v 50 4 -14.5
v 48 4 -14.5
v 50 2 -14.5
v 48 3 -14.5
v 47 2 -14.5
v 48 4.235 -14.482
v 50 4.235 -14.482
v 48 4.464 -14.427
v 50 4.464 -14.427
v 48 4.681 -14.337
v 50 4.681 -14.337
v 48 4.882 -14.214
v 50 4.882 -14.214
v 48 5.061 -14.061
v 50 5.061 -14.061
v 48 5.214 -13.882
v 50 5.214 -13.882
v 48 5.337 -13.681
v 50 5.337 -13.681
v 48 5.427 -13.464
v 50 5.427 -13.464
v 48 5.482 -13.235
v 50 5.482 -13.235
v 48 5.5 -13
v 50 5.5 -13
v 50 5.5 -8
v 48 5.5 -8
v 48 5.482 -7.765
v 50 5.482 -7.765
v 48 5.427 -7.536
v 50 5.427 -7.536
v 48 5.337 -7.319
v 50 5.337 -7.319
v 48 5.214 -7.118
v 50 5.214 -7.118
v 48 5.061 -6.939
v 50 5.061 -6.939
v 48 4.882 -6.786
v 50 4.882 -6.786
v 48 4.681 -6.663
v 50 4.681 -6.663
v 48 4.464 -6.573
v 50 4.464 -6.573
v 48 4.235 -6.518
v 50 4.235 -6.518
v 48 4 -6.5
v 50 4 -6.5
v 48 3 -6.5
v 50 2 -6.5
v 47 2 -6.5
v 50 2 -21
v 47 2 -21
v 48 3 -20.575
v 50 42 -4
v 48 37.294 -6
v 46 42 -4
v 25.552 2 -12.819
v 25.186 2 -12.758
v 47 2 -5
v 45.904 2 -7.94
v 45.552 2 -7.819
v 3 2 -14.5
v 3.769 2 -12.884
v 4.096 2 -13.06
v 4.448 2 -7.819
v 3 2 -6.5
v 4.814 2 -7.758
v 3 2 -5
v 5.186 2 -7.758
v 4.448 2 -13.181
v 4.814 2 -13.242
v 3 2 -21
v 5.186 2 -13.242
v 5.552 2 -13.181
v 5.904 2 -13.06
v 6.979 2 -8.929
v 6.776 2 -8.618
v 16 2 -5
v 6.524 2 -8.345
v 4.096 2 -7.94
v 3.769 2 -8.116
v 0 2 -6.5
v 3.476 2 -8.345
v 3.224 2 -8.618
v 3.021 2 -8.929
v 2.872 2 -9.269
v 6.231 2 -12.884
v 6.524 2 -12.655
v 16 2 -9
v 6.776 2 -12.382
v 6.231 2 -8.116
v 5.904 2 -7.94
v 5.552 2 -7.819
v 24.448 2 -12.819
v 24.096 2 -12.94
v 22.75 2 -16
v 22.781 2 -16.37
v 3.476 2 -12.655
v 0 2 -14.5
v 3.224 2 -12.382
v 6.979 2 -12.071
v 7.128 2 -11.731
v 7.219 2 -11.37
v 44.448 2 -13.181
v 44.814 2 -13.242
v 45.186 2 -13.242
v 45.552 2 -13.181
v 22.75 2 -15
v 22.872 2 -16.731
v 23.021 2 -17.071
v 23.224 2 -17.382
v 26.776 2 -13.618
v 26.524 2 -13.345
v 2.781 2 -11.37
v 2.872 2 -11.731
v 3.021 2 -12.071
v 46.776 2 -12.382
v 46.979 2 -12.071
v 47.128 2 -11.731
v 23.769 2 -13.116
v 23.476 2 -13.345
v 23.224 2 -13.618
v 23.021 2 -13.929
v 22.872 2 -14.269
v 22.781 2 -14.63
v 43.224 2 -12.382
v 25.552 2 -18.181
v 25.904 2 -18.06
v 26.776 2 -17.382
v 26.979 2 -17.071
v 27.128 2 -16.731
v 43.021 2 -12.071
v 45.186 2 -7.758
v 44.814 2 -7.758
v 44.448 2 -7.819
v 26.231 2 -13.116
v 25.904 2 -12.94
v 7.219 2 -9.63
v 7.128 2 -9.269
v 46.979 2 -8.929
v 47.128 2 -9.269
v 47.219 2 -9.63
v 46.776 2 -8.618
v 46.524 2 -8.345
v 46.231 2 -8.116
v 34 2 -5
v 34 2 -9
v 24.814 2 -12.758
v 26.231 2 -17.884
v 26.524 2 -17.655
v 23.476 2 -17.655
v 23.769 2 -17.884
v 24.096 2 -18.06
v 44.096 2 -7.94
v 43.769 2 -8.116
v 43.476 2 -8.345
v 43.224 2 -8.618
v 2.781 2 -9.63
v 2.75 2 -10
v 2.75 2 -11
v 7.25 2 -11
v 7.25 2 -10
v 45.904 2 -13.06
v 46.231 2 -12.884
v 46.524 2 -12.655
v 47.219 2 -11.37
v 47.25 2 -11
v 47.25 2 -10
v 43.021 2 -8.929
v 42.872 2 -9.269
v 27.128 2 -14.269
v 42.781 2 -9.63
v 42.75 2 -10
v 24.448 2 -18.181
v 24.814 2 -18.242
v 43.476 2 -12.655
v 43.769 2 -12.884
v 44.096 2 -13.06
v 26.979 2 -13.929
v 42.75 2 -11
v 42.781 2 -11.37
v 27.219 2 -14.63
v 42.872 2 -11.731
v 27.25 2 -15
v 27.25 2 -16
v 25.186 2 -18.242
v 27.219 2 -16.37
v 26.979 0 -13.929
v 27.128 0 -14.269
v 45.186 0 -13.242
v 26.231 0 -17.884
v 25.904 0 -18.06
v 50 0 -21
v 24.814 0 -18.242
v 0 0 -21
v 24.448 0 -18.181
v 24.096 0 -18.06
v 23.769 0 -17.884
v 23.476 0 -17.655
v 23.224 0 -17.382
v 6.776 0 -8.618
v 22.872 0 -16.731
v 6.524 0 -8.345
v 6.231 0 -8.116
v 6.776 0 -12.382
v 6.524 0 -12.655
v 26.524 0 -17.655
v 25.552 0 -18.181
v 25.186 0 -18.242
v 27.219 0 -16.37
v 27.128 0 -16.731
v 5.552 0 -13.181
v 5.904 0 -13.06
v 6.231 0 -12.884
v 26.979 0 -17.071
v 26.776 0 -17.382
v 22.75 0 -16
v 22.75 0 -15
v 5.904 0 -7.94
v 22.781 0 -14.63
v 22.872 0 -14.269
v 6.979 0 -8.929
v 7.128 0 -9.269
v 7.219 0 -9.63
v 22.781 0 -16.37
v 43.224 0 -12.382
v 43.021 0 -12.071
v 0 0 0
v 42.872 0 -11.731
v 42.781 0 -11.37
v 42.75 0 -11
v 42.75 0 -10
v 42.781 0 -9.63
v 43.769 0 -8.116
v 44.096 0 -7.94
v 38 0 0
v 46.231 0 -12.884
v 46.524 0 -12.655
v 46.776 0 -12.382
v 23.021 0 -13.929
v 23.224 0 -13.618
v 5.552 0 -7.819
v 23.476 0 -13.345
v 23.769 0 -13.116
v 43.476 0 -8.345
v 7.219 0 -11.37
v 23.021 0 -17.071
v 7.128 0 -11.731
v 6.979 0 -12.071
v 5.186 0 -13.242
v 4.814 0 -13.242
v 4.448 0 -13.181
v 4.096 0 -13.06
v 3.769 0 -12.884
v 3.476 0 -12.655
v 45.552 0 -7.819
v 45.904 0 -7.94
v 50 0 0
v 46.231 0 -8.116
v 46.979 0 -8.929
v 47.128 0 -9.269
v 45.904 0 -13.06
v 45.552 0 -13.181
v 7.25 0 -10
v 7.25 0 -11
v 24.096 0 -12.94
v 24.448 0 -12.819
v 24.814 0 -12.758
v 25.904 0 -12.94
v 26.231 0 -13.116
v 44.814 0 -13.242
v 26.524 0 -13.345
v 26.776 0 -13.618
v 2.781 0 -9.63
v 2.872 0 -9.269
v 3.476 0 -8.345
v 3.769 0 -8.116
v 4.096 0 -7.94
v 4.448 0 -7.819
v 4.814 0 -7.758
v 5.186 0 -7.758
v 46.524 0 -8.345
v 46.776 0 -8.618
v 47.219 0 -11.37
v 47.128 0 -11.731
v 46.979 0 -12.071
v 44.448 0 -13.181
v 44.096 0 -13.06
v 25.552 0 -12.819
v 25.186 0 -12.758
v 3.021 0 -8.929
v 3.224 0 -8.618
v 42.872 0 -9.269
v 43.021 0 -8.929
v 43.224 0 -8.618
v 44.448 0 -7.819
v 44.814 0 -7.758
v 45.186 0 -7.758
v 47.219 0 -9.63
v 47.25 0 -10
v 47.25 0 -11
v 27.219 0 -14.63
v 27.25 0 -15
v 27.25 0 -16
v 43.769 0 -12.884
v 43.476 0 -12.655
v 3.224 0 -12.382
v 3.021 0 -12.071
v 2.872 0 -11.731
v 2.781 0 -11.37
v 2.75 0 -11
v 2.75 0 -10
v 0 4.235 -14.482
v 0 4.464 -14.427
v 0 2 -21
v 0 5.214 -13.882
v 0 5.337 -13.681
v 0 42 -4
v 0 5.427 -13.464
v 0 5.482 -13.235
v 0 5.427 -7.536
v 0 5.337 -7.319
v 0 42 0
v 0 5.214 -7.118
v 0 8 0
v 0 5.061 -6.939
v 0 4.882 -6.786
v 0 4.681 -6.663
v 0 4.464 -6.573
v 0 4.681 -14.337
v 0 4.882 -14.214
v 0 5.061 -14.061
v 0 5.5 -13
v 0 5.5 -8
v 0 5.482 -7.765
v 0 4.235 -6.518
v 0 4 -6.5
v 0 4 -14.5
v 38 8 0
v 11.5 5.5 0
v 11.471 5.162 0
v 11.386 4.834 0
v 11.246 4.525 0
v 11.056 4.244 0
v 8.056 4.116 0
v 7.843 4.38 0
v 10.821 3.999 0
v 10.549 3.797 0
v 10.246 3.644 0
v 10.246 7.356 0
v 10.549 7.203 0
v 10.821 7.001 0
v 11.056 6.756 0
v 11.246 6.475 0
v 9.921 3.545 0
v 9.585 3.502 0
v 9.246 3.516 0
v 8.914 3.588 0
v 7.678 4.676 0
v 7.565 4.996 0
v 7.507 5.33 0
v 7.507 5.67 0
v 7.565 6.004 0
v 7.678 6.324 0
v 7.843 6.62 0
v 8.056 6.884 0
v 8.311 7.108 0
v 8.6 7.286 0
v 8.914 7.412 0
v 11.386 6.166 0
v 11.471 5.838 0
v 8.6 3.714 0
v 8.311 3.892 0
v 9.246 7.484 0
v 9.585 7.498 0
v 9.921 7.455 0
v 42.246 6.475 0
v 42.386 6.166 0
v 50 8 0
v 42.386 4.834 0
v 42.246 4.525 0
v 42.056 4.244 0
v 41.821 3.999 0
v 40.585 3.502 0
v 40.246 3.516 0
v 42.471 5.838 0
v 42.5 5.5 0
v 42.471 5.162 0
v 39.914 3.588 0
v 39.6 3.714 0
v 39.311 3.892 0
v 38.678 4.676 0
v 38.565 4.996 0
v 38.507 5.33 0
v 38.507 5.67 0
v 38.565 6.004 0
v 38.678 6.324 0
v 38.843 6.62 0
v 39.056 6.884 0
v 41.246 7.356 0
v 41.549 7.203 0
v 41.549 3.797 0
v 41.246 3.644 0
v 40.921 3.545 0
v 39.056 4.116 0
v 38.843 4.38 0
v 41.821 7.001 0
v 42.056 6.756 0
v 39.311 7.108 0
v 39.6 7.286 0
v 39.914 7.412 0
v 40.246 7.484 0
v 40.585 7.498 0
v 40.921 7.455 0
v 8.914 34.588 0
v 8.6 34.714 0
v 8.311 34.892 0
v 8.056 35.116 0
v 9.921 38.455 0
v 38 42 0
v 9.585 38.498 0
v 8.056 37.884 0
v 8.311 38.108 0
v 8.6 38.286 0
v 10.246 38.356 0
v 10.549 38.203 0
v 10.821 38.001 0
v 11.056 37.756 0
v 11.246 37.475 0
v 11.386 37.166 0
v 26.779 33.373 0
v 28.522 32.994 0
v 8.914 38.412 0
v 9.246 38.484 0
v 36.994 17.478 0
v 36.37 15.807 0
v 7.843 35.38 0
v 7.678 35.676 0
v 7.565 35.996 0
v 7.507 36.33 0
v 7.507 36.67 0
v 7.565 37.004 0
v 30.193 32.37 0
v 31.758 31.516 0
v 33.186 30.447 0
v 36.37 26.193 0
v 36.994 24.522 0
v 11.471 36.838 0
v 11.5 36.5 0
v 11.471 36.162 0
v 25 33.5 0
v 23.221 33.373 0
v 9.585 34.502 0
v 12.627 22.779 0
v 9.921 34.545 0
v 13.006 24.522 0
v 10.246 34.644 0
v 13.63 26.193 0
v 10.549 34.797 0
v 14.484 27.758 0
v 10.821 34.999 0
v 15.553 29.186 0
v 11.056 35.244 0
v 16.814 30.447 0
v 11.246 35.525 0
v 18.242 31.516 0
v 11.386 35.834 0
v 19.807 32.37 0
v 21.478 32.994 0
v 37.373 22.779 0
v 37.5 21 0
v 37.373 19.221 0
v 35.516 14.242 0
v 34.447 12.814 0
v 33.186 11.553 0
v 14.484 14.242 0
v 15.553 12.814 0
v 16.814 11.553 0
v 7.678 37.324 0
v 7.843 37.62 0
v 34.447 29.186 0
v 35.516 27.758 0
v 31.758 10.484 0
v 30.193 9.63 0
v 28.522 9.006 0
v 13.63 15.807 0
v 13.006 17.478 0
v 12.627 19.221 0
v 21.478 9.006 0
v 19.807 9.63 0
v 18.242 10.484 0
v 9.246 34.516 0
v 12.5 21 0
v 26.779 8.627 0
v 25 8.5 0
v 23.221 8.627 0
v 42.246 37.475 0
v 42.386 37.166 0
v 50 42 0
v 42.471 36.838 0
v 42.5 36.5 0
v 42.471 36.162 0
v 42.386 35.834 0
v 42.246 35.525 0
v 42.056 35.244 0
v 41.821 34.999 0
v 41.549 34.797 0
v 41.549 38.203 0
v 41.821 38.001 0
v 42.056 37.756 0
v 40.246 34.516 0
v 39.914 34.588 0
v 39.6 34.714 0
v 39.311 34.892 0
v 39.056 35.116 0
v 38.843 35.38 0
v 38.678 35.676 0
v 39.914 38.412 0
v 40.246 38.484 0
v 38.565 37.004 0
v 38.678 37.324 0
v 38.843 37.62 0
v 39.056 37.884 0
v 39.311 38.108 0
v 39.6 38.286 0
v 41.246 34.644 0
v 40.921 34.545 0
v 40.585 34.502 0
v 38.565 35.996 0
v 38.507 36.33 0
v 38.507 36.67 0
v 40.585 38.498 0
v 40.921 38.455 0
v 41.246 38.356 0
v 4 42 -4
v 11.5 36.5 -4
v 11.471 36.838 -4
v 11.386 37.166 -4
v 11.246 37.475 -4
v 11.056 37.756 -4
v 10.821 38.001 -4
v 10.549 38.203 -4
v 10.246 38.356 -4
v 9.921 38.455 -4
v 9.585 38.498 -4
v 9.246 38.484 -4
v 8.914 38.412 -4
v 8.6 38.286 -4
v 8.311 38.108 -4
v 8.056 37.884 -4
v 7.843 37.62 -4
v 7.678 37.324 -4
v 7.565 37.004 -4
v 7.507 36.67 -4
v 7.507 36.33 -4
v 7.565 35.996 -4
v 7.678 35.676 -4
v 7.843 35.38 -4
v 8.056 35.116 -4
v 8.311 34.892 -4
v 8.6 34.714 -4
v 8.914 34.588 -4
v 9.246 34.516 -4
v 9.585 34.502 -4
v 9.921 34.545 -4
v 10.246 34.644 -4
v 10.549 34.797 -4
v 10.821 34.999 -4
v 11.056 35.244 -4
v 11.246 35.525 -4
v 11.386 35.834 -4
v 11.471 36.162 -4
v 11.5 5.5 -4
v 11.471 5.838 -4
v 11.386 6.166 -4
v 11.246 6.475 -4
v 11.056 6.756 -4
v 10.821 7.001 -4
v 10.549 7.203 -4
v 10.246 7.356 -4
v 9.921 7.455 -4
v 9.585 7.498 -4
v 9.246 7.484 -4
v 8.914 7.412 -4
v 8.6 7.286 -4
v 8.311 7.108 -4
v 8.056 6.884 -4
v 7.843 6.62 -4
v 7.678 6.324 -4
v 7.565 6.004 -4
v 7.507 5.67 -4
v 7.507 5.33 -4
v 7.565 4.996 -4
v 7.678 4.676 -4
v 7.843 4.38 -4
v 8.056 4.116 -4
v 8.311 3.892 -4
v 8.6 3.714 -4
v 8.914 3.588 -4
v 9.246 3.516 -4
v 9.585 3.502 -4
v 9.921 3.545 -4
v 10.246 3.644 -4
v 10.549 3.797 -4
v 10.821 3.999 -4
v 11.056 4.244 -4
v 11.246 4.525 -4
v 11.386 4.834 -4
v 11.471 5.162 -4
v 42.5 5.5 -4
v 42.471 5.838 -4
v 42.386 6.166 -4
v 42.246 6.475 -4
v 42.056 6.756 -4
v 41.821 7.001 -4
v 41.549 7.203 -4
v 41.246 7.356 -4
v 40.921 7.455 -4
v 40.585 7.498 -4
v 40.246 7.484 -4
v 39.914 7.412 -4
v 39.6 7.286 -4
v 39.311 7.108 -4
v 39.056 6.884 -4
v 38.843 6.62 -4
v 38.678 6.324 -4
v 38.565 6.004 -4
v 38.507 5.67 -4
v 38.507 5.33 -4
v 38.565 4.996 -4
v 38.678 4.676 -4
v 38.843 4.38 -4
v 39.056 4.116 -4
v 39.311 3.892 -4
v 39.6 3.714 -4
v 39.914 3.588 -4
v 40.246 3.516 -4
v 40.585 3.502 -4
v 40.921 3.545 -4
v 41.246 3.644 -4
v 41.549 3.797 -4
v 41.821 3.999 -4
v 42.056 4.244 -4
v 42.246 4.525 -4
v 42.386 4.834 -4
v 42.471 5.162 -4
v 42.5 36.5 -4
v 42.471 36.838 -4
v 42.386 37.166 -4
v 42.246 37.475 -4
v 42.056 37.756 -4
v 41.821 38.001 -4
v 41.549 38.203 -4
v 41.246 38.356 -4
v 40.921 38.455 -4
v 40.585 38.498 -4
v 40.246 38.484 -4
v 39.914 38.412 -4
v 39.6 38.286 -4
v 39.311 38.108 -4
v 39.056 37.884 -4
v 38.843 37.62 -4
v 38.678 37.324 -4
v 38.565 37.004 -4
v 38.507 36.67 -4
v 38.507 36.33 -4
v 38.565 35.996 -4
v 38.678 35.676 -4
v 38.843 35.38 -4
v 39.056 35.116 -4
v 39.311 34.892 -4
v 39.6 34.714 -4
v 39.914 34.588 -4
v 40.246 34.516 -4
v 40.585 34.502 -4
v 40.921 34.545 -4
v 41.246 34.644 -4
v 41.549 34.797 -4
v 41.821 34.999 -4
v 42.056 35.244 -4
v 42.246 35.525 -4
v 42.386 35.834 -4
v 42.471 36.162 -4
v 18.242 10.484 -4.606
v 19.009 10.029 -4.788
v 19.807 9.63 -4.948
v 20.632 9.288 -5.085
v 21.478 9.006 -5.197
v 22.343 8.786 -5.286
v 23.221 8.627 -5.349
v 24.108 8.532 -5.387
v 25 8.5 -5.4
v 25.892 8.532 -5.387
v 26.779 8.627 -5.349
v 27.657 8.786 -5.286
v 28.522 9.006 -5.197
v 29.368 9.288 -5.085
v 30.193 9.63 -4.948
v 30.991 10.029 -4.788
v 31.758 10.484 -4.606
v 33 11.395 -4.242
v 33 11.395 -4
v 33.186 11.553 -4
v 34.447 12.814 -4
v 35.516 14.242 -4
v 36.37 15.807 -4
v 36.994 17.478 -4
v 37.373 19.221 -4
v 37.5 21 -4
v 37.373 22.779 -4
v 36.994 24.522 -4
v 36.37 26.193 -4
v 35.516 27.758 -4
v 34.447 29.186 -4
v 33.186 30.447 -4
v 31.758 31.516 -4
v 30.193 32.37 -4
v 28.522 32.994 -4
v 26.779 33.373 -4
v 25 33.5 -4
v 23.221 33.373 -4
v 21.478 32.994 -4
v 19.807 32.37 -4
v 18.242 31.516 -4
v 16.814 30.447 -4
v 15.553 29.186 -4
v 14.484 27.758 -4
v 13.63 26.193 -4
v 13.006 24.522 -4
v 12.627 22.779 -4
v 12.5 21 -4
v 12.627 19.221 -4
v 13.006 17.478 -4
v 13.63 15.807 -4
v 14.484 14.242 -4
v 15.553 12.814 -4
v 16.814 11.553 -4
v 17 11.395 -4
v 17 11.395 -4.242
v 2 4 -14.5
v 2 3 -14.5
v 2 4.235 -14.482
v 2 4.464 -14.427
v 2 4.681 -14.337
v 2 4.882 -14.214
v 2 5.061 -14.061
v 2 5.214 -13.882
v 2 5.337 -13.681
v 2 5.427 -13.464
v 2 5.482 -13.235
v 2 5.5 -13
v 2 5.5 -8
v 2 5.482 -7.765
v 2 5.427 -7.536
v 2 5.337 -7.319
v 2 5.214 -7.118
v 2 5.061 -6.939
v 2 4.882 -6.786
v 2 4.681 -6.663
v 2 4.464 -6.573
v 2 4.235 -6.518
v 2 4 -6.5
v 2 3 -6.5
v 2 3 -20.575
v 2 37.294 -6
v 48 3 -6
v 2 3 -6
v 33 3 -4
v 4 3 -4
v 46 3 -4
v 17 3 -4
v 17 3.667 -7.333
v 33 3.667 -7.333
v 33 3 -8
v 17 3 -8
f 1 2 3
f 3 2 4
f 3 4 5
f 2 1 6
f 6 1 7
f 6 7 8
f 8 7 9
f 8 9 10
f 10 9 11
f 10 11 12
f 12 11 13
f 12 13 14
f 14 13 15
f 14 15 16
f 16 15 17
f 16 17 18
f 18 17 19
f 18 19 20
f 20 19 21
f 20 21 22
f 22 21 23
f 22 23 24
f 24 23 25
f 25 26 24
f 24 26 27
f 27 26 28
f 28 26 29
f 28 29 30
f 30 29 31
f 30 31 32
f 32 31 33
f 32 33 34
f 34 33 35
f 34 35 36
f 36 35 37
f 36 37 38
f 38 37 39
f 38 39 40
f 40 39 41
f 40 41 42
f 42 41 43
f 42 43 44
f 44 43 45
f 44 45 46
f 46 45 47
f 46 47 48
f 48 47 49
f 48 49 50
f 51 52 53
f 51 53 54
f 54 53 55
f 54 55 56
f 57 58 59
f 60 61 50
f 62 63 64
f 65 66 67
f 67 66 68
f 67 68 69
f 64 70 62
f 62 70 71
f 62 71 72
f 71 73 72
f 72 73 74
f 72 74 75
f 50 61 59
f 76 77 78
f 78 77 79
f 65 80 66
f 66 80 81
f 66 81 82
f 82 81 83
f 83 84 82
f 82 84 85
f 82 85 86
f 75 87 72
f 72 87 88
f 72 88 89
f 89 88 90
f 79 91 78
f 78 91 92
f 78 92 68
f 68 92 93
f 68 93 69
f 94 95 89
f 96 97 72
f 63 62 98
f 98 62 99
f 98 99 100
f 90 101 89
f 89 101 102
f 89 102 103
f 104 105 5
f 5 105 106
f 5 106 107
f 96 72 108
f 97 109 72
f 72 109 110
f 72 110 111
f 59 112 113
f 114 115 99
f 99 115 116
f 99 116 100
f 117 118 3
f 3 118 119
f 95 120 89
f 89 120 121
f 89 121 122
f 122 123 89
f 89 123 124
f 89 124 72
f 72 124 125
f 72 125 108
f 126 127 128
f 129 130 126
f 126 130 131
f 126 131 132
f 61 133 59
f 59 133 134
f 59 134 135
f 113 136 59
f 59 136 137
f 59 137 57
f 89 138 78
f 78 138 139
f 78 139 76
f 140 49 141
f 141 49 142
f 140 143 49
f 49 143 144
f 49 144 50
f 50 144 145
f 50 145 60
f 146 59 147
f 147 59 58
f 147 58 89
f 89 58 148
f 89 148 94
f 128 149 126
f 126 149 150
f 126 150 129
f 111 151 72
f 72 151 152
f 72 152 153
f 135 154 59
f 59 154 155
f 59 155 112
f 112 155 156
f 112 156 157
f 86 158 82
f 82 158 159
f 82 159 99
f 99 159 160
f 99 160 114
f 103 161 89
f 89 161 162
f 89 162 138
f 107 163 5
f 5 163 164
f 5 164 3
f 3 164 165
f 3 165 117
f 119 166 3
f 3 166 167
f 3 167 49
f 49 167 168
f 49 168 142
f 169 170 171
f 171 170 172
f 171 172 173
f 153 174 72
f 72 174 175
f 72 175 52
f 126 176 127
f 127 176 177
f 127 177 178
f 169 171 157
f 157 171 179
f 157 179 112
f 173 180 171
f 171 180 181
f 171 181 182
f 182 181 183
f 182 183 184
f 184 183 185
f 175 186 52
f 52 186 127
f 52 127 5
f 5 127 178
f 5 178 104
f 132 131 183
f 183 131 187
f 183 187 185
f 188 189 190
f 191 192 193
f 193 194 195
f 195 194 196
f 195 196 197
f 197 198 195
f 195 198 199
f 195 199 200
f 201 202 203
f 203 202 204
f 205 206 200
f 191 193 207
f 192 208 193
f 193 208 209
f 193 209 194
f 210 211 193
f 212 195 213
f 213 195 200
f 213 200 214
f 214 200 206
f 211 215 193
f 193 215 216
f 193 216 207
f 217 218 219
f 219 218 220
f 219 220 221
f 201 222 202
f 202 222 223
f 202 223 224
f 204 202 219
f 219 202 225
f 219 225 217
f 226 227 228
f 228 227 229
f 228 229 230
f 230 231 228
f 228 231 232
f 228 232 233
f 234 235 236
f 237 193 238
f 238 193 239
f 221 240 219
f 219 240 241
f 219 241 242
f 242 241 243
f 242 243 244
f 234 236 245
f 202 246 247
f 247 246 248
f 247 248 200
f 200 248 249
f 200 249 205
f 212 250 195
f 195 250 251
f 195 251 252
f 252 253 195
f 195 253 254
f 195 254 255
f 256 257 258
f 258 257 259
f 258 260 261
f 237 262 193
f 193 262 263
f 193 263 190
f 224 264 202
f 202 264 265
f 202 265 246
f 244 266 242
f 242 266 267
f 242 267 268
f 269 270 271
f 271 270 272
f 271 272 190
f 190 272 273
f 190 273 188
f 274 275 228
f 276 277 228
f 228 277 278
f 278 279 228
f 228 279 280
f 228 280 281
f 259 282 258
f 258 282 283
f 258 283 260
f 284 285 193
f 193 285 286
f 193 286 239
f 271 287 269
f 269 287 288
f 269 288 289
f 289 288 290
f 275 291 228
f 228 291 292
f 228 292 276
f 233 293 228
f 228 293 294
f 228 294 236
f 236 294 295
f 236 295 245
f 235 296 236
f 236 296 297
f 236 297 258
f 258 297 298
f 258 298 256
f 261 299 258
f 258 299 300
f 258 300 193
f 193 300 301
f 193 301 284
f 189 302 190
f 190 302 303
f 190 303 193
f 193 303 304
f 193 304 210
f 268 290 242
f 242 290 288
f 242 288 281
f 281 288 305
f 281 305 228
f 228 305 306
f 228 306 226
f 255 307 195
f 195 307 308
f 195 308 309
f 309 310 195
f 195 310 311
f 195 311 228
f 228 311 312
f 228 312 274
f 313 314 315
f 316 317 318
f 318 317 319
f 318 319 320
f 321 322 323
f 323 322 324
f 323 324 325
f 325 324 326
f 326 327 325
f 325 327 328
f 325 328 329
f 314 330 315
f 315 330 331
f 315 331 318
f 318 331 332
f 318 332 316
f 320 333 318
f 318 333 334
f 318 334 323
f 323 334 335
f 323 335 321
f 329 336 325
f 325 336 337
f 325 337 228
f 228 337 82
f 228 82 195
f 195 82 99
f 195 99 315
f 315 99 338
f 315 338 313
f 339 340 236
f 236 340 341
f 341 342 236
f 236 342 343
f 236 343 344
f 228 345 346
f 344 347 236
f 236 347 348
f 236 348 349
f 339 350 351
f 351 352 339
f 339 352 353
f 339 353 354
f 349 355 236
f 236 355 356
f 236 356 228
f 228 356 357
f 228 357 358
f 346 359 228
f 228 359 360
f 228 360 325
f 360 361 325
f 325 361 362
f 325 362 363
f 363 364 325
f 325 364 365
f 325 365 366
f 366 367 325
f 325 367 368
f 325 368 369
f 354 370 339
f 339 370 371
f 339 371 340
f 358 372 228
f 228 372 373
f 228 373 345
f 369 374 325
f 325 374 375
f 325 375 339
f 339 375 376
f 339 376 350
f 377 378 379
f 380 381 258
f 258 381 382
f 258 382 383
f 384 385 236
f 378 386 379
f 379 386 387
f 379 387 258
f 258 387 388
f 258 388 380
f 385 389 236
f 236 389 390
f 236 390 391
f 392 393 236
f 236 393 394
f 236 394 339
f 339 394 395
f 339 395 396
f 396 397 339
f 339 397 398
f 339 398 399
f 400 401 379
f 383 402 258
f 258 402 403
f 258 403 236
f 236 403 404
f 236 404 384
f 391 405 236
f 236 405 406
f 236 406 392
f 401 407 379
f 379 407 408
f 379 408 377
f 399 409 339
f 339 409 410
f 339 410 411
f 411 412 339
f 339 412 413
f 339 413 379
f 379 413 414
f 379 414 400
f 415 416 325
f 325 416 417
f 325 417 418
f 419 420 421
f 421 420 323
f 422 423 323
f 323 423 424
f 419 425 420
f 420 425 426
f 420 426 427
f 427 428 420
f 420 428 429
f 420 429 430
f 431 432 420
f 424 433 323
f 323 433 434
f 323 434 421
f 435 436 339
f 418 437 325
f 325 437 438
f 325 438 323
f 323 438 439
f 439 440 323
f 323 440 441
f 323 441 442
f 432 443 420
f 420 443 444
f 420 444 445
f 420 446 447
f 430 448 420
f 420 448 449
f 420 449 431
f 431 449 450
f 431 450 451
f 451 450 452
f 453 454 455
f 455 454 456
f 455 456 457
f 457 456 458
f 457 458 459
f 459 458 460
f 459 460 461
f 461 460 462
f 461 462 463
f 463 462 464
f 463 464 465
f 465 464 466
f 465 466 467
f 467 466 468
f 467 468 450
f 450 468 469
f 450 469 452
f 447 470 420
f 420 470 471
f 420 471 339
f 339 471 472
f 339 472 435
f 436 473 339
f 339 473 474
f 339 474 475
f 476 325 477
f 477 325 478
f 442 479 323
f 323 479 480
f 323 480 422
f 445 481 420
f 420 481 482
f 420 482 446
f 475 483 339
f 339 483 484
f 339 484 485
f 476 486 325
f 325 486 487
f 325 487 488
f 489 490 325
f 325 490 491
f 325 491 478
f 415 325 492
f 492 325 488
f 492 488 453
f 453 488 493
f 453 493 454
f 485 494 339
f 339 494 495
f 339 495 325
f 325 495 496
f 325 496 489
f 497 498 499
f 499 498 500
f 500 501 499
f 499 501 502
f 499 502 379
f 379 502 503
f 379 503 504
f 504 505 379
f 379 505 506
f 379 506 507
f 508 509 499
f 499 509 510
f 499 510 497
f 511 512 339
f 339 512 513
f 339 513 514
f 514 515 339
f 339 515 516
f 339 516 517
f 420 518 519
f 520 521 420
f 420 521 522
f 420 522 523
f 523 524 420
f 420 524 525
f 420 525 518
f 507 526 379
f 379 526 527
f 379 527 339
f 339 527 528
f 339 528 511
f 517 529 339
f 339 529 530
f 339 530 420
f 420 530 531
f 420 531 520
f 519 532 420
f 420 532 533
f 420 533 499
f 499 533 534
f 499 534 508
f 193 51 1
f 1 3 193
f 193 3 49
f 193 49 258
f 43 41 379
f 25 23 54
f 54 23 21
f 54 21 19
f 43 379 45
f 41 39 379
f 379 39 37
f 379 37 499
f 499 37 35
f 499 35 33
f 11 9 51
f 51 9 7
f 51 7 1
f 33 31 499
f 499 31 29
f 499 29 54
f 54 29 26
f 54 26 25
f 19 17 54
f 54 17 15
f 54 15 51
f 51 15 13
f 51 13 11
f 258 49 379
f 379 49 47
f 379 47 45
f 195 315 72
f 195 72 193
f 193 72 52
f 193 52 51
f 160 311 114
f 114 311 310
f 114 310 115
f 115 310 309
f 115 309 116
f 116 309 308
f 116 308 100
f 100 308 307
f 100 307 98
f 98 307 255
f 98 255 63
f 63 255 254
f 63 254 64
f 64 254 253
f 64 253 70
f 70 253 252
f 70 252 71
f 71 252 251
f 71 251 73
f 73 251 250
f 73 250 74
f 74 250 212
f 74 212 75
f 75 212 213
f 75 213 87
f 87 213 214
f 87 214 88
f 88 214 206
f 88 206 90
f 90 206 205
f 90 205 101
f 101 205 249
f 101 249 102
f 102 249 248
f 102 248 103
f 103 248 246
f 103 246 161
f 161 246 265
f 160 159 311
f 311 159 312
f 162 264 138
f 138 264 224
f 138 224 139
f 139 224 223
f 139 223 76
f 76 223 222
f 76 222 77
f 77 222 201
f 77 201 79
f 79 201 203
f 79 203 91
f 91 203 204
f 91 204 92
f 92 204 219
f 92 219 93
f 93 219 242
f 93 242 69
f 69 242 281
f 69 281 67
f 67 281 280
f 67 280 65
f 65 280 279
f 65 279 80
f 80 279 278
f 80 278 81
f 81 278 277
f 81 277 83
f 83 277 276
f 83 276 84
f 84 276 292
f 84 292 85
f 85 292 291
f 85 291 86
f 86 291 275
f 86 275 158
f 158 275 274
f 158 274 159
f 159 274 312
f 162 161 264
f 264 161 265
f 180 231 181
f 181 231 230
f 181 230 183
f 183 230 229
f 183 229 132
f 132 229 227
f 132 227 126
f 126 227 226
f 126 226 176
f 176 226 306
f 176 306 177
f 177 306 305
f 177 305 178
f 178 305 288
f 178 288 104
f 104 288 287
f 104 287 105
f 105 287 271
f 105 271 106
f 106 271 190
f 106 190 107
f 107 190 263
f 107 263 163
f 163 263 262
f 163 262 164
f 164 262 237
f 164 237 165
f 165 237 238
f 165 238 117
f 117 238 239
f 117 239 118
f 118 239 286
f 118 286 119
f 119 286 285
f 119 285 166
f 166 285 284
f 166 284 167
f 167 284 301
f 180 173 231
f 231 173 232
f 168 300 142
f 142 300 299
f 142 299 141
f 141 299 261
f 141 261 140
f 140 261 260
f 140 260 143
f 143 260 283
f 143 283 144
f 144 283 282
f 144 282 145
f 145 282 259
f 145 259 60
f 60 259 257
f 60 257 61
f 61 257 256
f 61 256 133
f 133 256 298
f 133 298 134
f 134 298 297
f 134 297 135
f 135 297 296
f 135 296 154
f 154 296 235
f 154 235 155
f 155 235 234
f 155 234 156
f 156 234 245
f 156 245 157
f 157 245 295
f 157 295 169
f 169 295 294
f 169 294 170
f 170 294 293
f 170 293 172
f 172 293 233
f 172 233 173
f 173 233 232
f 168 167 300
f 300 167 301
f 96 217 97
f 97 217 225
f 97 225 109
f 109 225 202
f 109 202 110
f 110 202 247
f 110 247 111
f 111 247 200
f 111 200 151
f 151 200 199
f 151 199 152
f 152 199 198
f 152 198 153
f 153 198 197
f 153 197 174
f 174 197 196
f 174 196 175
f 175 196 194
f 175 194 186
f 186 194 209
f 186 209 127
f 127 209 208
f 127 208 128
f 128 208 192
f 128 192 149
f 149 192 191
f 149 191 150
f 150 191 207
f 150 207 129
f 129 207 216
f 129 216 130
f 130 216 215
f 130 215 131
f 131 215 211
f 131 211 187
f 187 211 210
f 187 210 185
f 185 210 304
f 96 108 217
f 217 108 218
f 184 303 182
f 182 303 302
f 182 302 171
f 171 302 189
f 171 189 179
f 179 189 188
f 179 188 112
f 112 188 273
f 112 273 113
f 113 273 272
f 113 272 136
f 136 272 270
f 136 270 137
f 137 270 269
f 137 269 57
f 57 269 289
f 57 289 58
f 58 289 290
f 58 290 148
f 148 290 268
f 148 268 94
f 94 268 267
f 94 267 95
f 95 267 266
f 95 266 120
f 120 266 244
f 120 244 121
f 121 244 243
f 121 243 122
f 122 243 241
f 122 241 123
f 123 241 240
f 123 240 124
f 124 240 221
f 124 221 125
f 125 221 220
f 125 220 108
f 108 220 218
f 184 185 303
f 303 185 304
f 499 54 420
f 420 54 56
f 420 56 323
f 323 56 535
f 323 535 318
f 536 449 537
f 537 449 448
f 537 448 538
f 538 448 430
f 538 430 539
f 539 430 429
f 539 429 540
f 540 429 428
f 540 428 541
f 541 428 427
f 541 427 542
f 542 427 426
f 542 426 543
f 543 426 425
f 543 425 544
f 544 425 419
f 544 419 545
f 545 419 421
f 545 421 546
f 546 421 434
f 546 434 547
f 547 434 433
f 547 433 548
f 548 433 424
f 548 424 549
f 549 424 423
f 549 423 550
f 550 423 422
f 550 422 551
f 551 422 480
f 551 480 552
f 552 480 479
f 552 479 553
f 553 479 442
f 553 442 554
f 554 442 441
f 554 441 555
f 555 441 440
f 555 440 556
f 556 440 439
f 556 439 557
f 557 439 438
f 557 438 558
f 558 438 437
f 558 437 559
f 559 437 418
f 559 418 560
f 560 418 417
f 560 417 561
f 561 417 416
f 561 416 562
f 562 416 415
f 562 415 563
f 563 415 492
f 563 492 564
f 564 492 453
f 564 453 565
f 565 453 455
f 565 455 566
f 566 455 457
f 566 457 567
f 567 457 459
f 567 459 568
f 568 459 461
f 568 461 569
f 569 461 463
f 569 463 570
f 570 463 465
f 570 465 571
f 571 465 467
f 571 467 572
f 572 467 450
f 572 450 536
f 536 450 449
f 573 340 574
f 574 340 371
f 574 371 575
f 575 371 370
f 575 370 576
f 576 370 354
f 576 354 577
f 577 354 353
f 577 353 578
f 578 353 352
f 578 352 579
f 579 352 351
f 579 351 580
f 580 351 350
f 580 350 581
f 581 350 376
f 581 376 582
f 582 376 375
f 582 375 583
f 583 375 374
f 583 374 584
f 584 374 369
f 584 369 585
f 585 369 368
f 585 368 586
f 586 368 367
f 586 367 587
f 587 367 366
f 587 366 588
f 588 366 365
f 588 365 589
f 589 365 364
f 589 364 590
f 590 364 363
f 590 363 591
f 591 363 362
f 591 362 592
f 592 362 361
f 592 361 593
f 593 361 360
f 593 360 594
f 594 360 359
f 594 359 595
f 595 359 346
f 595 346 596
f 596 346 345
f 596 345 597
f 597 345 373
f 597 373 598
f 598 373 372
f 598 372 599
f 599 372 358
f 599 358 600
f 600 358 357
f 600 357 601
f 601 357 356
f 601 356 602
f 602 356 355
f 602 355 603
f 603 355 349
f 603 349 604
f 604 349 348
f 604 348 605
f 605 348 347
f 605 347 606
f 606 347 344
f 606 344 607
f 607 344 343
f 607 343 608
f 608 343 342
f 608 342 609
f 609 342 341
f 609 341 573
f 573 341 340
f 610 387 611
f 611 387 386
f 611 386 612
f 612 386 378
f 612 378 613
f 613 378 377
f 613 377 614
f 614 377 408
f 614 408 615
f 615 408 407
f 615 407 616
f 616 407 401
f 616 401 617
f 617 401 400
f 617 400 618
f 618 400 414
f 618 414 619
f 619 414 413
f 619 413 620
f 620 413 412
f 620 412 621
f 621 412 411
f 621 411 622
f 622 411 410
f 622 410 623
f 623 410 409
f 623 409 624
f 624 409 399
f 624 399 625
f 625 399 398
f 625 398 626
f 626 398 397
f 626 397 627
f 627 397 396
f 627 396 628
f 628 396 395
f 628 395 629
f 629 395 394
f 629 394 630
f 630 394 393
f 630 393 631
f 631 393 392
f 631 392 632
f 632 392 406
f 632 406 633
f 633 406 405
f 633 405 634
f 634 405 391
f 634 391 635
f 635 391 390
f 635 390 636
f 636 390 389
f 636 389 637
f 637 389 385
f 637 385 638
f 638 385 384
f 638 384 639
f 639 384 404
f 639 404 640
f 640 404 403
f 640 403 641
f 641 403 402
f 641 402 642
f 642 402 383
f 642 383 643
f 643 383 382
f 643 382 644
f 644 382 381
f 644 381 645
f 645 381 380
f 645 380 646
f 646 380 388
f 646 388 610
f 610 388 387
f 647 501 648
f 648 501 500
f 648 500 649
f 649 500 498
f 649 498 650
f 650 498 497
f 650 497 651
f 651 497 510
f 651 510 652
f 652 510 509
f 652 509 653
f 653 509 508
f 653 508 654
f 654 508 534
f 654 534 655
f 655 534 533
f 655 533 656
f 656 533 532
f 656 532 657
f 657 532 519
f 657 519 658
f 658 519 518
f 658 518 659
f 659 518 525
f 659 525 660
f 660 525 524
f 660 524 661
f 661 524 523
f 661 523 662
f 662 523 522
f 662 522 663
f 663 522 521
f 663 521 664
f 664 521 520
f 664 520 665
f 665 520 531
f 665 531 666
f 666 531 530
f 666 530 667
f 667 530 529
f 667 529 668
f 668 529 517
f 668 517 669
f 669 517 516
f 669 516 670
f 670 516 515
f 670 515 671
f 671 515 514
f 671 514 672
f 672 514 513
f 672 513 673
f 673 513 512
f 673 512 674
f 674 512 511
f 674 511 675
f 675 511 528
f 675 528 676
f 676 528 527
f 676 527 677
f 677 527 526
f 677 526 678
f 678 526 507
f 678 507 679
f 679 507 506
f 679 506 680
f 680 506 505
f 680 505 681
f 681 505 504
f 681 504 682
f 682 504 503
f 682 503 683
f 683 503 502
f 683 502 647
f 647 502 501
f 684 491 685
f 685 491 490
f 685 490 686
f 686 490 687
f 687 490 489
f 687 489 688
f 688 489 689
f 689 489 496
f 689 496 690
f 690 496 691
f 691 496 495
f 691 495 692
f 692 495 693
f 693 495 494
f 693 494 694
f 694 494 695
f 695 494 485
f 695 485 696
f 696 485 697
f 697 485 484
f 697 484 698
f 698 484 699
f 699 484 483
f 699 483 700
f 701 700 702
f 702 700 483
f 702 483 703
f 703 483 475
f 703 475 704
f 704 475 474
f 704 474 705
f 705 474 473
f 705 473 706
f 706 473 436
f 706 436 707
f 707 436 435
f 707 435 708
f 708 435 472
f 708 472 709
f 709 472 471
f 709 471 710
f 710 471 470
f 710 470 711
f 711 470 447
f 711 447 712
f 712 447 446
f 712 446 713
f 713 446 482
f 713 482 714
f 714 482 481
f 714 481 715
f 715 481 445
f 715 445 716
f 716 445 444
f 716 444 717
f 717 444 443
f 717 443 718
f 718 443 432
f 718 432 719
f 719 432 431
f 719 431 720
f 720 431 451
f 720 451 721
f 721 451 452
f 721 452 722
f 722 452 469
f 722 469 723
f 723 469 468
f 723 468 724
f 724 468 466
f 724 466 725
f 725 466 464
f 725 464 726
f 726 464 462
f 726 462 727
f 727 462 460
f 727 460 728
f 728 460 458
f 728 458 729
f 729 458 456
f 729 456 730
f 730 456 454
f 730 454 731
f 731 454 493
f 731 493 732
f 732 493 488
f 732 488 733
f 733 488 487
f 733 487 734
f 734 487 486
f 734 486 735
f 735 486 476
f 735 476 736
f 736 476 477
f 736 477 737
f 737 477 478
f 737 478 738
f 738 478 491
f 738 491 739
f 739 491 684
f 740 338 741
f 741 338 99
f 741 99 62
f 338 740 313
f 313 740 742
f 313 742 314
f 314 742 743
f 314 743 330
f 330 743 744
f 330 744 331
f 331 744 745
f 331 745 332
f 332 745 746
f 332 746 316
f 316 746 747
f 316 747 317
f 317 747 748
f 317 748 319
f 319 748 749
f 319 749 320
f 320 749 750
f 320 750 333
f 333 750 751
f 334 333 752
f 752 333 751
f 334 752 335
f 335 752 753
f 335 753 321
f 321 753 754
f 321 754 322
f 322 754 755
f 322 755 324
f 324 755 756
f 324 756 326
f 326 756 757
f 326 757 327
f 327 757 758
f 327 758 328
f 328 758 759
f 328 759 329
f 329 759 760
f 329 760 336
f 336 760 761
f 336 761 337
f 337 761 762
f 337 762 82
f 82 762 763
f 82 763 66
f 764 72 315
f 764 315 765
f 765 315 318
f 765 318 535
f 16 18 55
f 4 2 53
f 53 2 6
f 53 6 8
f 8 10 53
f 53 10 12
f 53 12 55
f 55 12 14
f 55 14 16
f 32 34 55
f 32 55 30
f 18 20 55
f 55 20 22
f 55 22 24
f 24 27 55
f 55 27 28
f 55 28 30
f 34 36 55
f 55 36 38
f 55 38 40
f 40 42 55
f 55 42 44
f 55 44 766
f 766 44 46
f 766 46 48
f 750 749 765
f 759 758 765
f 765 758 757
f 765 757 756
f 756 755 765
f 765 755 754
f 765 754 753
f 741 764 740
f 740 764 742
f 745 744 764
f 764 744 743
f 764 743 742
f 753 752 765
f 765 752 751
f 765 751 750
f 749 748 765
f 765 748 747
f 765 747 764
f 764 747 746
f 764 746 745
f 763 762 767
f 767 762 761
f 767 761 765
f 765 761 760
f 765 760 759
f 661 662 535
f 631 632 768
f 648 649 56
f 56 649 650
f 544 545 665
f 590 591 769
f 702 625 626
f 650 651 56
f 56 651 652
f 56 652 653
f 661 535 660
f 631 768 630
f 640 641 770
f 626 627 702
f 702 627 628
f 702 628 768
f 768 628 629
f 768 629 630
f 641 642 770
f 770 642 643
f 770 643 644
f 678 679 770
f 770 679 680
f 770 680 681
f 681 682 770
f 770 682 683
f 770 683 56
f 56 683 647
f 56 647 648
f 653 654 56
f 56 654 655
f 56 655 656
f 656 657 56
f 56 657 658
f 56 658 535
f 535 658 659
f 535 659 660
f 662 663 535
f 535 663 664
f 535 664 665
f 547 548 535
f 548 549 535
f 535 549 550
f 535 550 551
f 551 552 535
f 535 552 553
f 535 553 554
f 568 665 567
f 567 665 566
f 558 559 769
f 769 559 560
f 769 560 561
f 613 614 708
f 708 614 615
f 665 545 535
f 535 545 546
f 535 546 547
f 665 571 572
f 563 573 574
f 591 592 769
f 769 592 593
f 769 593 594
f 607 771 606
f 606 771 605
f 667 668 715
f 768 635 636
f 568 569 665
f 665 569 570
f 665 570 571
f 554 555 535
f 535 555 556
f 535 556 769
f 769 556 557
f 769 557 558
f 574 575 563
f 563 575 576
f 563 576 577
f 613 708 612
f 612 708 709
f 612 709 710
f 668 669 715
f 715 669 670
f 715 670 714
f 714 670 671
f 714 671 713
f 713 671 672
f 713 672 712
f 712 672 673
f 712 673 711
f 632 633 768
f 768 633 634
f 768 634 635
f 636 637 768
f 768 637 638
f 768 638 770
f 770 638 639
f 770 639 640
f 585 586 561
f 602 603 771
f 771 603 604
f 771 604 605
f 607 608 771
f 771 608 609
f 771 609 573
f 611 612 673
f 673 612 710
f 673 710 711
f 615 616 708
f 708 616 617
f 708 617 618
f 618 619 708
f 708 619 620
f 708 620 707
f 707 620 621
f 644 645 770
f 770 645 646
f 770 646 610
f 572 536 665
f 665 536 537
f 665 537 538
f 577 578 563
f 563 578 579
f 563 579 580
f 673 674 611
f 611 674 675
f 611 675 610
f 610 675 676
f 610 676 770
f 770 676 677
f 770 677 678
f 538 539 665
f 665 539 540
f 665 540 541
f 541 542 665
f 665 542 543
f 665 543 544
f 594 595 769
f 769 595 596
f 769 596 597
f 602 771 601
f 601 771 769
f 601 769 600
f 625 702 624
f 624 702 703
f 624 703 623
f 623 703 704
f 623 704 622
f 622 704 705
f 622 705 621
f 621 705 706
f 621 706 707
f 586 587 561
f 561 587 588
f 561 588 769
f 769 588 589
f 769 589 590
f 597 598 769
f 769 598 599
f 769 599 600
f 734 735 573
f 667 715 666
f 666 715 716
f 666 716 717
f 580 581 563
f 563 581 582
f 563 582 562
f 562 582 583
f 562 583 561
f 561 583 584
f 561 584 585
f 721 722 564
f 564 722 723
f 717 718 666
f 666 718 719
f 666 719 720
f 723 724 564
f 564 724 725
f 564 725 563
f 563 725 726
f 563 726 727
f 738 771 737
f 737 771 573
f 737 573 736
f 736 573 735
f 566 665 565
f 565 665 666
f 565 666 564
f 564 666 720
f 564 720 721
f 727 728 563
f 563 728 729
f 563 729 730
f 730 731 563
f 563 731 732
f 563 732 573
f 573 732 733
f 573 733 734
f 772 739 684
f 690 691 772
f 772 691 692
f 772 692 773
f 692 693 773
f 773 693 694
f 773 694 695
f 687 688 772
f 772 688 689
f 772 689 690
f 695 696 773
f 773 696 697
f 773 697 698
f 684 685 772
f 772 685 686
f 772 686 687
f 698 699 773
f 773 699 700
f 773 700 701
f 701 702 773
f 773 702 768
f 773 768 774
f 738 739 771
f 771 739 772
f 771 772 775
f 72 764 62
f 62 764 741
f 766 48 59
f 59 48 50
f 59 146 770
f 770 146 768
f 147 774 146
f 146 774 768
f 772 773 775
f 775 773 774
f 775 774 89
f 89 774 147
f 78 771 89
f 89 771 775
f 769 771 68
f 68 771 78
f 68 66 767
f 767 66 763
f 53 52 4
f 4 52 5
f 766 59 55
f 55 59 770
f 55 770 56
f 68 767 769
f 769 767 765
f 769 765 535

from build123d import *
from OCP.BRepFilletAPI import BRepFilletAPI_MakeChamfer

# Parameters (mm, degrees)
SKETCH1_W                = 50
SKETCH1_H                = 21
BOSS_EXTRUDE1_DEPTH      = 2
SKETCH2_W                = 50
SKETCH2_H                = 42
SKETCH2_R                = 2
SKETCH2_R_2              = 12.5
BOSS_EXTRUDE2_DEPTH      = 4
BOSS_EXTRUDE3_START      = -50
BOSS_EXTRUDE3_DEPTH      = 50
CUT_EXTRUDE1_START       = -17
SKETCH4_W                = 46
SKETCH4_H                = 40
CUT_EXTRUDE1_DEPTH       = 17
BOSS_EXTRUDE4_DEPTH      = 8
BOSS_EXTRUDE4_DEPTH_BACK = 8
SKETCH6_R                = 12.5
CUT_EXTRUDE2_DEPTH       = 68.475921631
CHAMFER1_SIZE            = 1
CHAMFER1_SIZE2           = 1.795054936
CHAMFER2_SIZE            = 2


with BuildPart() as part:
    # Sketch1 → Boss-Extrude1 (new body)
    with BuildSketch(Plane(origin=(0, 0, 0), x_dir=(1, 0, 0), z_dir=(0, 1, 0))):
        with Locations((25, 10.5)):
            Rectangle(SKETCH1_W, SKETCH1_H)
        with BuildLine():
            Line((7.25, 11), (7.25, 10))
            ThreePointArc((7.25, 10), (5, 7.75), (2.75, 10))
            Line((2.75, 10), (2.75, 11))
            ThreePointArc((2.75, 11), (5, 13.25), (7.25, 11))
        make_face(mode=Mode.SUBTRACT)
        with BuildLine():
            Line((42.75, 11), (42.75, 10))
            ThreePointArc((42.75, 10), (45, 7.75), (47.25, 10))
            Line((47.25, 10), (47.25, 11))
            ThreePointArc((47.25, 11), (45, 13.25), (42.75, 11))
        make_face(mode=Mode.SUBTRACT)
        with BuildLine():
            Line((27.25, 16), (27.25, 15))
            ThreePointArc((27.25, 15), (25, 12.75), (22.75, 15))
            Line((22.75, 15), (22.75, 16))
            ThreePointArc((22.75, 16), (25, 18.25), (27.25, 16))
        make_face(mode=Mode.SUBTRACT)
    extrude(amount=BOSS_EXTRUDE1_DEPTH)

    # Sketch2 → Boss-Extrude2 (add)
    with BuildSketch(Plane.XY):
        with Locations((25, 21)):
            Rectangle(SKETCH2_W, SKETCH2_H)
        with Locations((9.5, 36.5)):
            Circle(SKETCH2_R, mode=Mode.SUBTRACT)
        with Locations((9.5, 5.5)):
            Circle(SKETCH2_R, mode=Mode.SUBTRACT)
        with Locations((40.5, 5.5)):
            Circle(SKETCH2_R, mode=Mode.SUBTRACT)
        with Locations((40.5, 36.5)):
            Circle(SKETCH2_R, mode=Mode.SUBTRACT)
        with Locations((25, 21)):
            Circle(SKETCH2_R_2, mode=Mode.SUBTRACT)
    extrude(amount=-BOSS_EXTRUDE2_DEPTH)

    # Sketch3 → Boss-Extrude3 (add)
    with BuildSketch(Plane(origin=(50, 0, 0), x_dir=(0, 0, -1), z_dir=(1, 0, 0)).offset(BOSS_EXTRUDE3_START)):
        with BuildLine():
            Line((21, 2), (4, 42))
            Line((4, 42), (4, 2))
            Line((4, 2), (6.5, 2))
            Line((6.5, 2), (6.5, 4))
            ThreePointArc((6.5, 4), (6.939339828, 5.060660172), (8, 5.5))
            Line((8, 5.5), (13, 5.5))
            ThreePointArc((13, 5.5), (14.060660172, 5.060660172), (14.5, 4))
            Line((14.5, 4), (14.5, 2))
            Line((14.5, 2), (21, 2))
        make_face()
    extrude(amount=BOSS_EXTRUDE3_DEPTH)

    # Sketch4 → Cut-Extrude1 (cut)
    with BuildSketch(Plane(origin=(0, 0, -21), x_dir=(-1, 0, 0), z_dir=(0, 0, -1)).offset(CUT_EXTRUDE1_START)):
        with Locations((-25, 22)):
            Rectangle(SKETCH4_W, SKETCH4_H)
    extrude(amount=CUT_EXTRUDE1_DEPTH, mode=Mode.SUBTRACT)

    # Sketch5 → Boss-Extrude4 (add, two sides: drawn at the far end of the back side and taken through both)
    with BuildSketch(Plane.ZY.offset(-25).offset(-BOSS_EXTRUDE4_DEPTH_BACK)):
        Polygon((-4, 2), (-8, 2), (-4, 12), align=None)
    extrude(amount=BOSS_EXTRUDE4_DEPTH + BOSS_EXTRUDE4_DEPTH_BACK)

    # Sketch6 → Cut-Extrude2 (cut, through all)
    with BuildSketch(Plane.XY.offset(-4)):
        with Locations((25, 21)):
            Circle(SKETCH6_R)
    extrude(amount=-CUT_EXTRUDE2_DEPTH, mode=Mode.SUBTRACT)

    # Chamfer1: one chamfer whose edges measure the first distance from different faces: ONE call of the kernel's chamfer builder (chamfer() names one face for all edges)
    chamfer1_edges_1 = [part.edges().sort_by_distance(p)[0] for p in [
        (2, 2, -17.75),
        (48, 2, -17.75),
        (48, 2, -5.25),
        (40.5, 2, -4),
        (2, 2, -5.25),
        (9.5, 2, -4),
        (33, 2, -6),
        (17, 2, -6),
    ]]
    chamfer1_edges_2 = [part.edges().sort_by_distance(p)[0] for p in [
        (25, 2, -8),
    ]]
    chamfer1_side_2 = [part.faces().sort_by_distance(p)[0] for p in [
        (1, 2, -13.971890163),
    ]]
    chamfer1 = BRepFilletAPI_MakeChamfer(part.part.solid().wrapped)
    for e in chamfer1_edges_1:
        chamfer1.Add(CHAMFER1_SIZE, e.wrapped)
    for e in chamfer1_edges_2:
        chamfer1.Add(CHAMFER1_SIZE, CHAMFER1_SIZE2, e.wrapped, chamfer1_side_2[0].wrapped)  # the first distance lies on this face
    add(Compound.cast(chamfer1.Shape()), mode=Mode.REPLACE)

    # Chamfer2
    chamfer2_edges = [part.edges().sort_by_distance(p)[0] for p in [
        (48, 22.5, -4),
        (2, 22.5, -4),
    ]]
    chamfer(chamfer2_edges, length=CHAMFER2_SIZE - 0.0001)  # a hair under: the kernel refuses the full size


solid = part.part
